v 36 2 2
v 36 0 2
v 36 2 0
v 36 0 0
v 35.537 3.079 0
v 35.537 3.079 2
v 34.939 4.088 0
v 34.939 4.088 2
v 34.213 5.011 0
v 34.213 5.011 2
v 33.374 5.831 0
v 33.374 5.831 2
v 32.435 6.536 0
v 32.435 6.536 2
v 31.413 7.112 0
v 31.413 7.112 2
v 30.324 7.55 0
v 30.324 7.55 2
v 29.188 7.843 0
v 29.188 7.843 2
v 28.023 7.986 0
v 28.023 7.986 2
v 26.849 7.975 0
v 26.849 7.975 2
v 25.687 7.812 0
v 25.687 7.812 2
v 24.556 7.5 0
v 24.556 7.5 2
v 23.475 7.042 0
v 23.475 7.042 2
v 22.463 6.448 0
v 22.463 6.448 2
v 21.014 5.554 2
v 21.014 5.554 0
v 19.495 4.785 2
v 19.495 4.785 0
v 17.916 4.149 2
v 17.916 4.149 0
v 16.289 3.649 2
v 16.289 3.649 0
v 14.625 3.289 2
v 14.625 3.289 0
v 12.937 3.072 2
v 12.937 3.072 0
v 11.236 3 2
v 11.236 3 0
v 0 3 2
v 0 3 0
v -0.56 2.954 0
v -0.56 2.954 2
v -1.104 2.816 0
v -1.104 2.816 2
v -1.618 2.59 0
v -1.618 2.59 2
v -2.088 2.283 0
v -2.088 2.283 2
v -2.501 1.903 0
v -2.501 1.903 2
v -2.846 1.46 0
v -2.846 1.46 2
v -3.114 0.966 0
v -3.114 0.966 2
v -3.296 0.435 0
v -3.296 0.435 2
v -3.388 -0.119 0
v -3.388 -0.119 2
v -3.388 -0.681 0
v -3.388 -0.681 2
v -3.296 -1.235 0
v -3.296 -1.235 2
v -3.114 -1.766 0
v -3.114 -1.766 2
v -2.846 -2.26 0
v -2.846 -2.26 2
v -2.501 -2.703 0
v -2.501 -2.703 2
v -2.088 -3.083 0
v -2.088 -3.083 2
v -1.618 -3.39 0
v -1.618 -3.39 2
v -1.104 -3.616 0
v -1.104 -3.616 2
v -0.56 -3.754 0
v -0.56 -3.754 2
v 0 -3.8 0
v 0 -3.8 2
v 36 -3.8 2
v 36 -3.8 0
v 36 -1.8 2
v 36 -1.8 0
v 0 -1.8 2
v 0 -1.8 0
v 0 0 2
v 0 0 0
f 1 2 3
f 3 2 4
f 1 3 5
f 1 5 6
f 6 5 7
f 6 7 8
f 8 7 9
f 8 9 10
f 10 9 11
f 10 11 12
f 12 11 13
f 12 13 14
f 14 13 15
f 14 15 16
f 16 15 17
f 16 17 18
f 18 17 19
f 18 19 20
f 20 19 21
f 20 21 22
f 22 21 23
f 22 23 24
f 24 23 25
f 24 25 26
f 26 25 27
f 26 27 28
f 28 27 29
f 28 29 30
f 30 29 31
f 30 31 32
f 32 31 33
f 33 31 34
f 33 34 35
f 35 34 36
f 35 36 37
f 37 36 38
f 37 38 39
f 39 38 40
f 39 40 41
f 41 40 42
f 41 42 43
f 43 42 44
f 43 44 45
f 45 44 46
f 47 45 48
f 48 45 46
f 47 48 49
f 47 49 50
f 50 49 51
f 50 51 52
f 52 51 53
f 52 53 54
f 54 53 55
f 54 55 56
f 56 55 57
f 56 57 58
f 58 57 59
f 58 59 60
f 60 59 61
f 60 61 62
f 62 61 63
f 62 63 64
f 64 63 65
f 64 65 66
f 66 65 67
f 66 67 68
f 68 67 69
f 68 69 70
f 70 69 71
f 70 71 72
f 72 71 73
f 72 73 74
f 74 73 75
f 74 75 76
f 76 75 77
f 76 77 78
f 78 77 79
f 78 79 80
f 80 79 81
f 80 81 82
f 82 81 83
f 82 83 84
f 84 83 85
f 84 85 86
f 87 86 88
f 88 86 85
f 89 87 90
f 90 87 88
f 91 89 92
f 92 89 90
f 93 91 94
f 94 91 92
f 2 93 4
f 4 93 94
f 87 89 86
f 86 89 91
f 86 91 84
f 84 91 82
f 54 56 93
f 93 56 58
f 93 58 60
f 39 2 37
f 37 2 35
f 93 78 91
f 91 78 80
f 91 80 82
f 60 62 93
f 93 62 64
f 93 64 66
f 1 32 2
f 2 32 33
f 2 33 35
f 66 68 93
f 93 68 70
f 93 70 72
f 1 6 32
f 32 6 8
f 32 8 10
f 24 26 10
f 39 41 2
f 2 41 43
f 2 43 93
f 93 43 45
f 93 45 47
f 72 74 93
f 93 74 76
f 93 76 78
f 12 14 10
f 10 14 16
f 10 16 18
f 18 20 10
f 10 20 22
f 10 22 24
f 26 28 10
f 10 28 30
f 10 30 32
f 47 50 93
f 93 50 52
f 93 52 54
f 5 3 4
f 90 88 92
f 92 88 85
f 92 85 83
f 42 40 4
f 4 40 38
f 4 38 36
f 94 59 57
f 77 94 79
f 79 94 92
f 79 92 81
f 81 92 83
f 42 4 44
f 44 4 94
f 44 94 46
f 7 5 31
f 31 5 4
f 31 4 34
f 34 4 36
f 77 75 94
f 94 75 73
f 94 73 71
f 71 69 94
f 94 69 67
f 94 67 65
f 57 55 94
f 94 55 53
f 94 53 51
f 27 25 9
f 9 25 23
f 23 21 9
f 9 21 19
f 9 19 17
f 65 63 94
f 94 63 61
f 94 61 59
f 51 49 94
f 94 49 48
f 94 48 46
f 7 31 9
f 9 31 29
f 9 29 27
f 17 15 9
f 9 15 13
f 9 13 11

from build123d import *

# Parameters (mm, degrees)
SALIENTE_EXTRUIR1_DEPTH = 2


with BuildPart() as part:
    # Croquis1 → Saliente-Extruir1 (new body)
    with BuildSketch(Plane.XY):
        with BuildLine():
            Line((36, 0), (0, 0))
            Line((0, 0), (0, -1.8))
            Line((0, -1.8), (36, -1.8))
            Line((36, -1.8), (36, -3.8))
            Line((36, -3.8), (0, -3.8))
            ThreePointArc((0, -3.8), (-3.4, -0.4), (0, 3))
            Line((0, 3), (11.23589803, 3))
            ThreePointArc((11.23589803, 3), (17.108100225, 3.881494792), (22.462670855, 6.448275862))
            ThreePointArc((22.462670855, 6.448275862), (30.324267127, 7.550230244), (36, 2))
            Line((36, 2), (36, 0))
        make_face()
    extrude(amount=SALIENTE_EXTRUIR1_DEPTH)


solid = part.part
